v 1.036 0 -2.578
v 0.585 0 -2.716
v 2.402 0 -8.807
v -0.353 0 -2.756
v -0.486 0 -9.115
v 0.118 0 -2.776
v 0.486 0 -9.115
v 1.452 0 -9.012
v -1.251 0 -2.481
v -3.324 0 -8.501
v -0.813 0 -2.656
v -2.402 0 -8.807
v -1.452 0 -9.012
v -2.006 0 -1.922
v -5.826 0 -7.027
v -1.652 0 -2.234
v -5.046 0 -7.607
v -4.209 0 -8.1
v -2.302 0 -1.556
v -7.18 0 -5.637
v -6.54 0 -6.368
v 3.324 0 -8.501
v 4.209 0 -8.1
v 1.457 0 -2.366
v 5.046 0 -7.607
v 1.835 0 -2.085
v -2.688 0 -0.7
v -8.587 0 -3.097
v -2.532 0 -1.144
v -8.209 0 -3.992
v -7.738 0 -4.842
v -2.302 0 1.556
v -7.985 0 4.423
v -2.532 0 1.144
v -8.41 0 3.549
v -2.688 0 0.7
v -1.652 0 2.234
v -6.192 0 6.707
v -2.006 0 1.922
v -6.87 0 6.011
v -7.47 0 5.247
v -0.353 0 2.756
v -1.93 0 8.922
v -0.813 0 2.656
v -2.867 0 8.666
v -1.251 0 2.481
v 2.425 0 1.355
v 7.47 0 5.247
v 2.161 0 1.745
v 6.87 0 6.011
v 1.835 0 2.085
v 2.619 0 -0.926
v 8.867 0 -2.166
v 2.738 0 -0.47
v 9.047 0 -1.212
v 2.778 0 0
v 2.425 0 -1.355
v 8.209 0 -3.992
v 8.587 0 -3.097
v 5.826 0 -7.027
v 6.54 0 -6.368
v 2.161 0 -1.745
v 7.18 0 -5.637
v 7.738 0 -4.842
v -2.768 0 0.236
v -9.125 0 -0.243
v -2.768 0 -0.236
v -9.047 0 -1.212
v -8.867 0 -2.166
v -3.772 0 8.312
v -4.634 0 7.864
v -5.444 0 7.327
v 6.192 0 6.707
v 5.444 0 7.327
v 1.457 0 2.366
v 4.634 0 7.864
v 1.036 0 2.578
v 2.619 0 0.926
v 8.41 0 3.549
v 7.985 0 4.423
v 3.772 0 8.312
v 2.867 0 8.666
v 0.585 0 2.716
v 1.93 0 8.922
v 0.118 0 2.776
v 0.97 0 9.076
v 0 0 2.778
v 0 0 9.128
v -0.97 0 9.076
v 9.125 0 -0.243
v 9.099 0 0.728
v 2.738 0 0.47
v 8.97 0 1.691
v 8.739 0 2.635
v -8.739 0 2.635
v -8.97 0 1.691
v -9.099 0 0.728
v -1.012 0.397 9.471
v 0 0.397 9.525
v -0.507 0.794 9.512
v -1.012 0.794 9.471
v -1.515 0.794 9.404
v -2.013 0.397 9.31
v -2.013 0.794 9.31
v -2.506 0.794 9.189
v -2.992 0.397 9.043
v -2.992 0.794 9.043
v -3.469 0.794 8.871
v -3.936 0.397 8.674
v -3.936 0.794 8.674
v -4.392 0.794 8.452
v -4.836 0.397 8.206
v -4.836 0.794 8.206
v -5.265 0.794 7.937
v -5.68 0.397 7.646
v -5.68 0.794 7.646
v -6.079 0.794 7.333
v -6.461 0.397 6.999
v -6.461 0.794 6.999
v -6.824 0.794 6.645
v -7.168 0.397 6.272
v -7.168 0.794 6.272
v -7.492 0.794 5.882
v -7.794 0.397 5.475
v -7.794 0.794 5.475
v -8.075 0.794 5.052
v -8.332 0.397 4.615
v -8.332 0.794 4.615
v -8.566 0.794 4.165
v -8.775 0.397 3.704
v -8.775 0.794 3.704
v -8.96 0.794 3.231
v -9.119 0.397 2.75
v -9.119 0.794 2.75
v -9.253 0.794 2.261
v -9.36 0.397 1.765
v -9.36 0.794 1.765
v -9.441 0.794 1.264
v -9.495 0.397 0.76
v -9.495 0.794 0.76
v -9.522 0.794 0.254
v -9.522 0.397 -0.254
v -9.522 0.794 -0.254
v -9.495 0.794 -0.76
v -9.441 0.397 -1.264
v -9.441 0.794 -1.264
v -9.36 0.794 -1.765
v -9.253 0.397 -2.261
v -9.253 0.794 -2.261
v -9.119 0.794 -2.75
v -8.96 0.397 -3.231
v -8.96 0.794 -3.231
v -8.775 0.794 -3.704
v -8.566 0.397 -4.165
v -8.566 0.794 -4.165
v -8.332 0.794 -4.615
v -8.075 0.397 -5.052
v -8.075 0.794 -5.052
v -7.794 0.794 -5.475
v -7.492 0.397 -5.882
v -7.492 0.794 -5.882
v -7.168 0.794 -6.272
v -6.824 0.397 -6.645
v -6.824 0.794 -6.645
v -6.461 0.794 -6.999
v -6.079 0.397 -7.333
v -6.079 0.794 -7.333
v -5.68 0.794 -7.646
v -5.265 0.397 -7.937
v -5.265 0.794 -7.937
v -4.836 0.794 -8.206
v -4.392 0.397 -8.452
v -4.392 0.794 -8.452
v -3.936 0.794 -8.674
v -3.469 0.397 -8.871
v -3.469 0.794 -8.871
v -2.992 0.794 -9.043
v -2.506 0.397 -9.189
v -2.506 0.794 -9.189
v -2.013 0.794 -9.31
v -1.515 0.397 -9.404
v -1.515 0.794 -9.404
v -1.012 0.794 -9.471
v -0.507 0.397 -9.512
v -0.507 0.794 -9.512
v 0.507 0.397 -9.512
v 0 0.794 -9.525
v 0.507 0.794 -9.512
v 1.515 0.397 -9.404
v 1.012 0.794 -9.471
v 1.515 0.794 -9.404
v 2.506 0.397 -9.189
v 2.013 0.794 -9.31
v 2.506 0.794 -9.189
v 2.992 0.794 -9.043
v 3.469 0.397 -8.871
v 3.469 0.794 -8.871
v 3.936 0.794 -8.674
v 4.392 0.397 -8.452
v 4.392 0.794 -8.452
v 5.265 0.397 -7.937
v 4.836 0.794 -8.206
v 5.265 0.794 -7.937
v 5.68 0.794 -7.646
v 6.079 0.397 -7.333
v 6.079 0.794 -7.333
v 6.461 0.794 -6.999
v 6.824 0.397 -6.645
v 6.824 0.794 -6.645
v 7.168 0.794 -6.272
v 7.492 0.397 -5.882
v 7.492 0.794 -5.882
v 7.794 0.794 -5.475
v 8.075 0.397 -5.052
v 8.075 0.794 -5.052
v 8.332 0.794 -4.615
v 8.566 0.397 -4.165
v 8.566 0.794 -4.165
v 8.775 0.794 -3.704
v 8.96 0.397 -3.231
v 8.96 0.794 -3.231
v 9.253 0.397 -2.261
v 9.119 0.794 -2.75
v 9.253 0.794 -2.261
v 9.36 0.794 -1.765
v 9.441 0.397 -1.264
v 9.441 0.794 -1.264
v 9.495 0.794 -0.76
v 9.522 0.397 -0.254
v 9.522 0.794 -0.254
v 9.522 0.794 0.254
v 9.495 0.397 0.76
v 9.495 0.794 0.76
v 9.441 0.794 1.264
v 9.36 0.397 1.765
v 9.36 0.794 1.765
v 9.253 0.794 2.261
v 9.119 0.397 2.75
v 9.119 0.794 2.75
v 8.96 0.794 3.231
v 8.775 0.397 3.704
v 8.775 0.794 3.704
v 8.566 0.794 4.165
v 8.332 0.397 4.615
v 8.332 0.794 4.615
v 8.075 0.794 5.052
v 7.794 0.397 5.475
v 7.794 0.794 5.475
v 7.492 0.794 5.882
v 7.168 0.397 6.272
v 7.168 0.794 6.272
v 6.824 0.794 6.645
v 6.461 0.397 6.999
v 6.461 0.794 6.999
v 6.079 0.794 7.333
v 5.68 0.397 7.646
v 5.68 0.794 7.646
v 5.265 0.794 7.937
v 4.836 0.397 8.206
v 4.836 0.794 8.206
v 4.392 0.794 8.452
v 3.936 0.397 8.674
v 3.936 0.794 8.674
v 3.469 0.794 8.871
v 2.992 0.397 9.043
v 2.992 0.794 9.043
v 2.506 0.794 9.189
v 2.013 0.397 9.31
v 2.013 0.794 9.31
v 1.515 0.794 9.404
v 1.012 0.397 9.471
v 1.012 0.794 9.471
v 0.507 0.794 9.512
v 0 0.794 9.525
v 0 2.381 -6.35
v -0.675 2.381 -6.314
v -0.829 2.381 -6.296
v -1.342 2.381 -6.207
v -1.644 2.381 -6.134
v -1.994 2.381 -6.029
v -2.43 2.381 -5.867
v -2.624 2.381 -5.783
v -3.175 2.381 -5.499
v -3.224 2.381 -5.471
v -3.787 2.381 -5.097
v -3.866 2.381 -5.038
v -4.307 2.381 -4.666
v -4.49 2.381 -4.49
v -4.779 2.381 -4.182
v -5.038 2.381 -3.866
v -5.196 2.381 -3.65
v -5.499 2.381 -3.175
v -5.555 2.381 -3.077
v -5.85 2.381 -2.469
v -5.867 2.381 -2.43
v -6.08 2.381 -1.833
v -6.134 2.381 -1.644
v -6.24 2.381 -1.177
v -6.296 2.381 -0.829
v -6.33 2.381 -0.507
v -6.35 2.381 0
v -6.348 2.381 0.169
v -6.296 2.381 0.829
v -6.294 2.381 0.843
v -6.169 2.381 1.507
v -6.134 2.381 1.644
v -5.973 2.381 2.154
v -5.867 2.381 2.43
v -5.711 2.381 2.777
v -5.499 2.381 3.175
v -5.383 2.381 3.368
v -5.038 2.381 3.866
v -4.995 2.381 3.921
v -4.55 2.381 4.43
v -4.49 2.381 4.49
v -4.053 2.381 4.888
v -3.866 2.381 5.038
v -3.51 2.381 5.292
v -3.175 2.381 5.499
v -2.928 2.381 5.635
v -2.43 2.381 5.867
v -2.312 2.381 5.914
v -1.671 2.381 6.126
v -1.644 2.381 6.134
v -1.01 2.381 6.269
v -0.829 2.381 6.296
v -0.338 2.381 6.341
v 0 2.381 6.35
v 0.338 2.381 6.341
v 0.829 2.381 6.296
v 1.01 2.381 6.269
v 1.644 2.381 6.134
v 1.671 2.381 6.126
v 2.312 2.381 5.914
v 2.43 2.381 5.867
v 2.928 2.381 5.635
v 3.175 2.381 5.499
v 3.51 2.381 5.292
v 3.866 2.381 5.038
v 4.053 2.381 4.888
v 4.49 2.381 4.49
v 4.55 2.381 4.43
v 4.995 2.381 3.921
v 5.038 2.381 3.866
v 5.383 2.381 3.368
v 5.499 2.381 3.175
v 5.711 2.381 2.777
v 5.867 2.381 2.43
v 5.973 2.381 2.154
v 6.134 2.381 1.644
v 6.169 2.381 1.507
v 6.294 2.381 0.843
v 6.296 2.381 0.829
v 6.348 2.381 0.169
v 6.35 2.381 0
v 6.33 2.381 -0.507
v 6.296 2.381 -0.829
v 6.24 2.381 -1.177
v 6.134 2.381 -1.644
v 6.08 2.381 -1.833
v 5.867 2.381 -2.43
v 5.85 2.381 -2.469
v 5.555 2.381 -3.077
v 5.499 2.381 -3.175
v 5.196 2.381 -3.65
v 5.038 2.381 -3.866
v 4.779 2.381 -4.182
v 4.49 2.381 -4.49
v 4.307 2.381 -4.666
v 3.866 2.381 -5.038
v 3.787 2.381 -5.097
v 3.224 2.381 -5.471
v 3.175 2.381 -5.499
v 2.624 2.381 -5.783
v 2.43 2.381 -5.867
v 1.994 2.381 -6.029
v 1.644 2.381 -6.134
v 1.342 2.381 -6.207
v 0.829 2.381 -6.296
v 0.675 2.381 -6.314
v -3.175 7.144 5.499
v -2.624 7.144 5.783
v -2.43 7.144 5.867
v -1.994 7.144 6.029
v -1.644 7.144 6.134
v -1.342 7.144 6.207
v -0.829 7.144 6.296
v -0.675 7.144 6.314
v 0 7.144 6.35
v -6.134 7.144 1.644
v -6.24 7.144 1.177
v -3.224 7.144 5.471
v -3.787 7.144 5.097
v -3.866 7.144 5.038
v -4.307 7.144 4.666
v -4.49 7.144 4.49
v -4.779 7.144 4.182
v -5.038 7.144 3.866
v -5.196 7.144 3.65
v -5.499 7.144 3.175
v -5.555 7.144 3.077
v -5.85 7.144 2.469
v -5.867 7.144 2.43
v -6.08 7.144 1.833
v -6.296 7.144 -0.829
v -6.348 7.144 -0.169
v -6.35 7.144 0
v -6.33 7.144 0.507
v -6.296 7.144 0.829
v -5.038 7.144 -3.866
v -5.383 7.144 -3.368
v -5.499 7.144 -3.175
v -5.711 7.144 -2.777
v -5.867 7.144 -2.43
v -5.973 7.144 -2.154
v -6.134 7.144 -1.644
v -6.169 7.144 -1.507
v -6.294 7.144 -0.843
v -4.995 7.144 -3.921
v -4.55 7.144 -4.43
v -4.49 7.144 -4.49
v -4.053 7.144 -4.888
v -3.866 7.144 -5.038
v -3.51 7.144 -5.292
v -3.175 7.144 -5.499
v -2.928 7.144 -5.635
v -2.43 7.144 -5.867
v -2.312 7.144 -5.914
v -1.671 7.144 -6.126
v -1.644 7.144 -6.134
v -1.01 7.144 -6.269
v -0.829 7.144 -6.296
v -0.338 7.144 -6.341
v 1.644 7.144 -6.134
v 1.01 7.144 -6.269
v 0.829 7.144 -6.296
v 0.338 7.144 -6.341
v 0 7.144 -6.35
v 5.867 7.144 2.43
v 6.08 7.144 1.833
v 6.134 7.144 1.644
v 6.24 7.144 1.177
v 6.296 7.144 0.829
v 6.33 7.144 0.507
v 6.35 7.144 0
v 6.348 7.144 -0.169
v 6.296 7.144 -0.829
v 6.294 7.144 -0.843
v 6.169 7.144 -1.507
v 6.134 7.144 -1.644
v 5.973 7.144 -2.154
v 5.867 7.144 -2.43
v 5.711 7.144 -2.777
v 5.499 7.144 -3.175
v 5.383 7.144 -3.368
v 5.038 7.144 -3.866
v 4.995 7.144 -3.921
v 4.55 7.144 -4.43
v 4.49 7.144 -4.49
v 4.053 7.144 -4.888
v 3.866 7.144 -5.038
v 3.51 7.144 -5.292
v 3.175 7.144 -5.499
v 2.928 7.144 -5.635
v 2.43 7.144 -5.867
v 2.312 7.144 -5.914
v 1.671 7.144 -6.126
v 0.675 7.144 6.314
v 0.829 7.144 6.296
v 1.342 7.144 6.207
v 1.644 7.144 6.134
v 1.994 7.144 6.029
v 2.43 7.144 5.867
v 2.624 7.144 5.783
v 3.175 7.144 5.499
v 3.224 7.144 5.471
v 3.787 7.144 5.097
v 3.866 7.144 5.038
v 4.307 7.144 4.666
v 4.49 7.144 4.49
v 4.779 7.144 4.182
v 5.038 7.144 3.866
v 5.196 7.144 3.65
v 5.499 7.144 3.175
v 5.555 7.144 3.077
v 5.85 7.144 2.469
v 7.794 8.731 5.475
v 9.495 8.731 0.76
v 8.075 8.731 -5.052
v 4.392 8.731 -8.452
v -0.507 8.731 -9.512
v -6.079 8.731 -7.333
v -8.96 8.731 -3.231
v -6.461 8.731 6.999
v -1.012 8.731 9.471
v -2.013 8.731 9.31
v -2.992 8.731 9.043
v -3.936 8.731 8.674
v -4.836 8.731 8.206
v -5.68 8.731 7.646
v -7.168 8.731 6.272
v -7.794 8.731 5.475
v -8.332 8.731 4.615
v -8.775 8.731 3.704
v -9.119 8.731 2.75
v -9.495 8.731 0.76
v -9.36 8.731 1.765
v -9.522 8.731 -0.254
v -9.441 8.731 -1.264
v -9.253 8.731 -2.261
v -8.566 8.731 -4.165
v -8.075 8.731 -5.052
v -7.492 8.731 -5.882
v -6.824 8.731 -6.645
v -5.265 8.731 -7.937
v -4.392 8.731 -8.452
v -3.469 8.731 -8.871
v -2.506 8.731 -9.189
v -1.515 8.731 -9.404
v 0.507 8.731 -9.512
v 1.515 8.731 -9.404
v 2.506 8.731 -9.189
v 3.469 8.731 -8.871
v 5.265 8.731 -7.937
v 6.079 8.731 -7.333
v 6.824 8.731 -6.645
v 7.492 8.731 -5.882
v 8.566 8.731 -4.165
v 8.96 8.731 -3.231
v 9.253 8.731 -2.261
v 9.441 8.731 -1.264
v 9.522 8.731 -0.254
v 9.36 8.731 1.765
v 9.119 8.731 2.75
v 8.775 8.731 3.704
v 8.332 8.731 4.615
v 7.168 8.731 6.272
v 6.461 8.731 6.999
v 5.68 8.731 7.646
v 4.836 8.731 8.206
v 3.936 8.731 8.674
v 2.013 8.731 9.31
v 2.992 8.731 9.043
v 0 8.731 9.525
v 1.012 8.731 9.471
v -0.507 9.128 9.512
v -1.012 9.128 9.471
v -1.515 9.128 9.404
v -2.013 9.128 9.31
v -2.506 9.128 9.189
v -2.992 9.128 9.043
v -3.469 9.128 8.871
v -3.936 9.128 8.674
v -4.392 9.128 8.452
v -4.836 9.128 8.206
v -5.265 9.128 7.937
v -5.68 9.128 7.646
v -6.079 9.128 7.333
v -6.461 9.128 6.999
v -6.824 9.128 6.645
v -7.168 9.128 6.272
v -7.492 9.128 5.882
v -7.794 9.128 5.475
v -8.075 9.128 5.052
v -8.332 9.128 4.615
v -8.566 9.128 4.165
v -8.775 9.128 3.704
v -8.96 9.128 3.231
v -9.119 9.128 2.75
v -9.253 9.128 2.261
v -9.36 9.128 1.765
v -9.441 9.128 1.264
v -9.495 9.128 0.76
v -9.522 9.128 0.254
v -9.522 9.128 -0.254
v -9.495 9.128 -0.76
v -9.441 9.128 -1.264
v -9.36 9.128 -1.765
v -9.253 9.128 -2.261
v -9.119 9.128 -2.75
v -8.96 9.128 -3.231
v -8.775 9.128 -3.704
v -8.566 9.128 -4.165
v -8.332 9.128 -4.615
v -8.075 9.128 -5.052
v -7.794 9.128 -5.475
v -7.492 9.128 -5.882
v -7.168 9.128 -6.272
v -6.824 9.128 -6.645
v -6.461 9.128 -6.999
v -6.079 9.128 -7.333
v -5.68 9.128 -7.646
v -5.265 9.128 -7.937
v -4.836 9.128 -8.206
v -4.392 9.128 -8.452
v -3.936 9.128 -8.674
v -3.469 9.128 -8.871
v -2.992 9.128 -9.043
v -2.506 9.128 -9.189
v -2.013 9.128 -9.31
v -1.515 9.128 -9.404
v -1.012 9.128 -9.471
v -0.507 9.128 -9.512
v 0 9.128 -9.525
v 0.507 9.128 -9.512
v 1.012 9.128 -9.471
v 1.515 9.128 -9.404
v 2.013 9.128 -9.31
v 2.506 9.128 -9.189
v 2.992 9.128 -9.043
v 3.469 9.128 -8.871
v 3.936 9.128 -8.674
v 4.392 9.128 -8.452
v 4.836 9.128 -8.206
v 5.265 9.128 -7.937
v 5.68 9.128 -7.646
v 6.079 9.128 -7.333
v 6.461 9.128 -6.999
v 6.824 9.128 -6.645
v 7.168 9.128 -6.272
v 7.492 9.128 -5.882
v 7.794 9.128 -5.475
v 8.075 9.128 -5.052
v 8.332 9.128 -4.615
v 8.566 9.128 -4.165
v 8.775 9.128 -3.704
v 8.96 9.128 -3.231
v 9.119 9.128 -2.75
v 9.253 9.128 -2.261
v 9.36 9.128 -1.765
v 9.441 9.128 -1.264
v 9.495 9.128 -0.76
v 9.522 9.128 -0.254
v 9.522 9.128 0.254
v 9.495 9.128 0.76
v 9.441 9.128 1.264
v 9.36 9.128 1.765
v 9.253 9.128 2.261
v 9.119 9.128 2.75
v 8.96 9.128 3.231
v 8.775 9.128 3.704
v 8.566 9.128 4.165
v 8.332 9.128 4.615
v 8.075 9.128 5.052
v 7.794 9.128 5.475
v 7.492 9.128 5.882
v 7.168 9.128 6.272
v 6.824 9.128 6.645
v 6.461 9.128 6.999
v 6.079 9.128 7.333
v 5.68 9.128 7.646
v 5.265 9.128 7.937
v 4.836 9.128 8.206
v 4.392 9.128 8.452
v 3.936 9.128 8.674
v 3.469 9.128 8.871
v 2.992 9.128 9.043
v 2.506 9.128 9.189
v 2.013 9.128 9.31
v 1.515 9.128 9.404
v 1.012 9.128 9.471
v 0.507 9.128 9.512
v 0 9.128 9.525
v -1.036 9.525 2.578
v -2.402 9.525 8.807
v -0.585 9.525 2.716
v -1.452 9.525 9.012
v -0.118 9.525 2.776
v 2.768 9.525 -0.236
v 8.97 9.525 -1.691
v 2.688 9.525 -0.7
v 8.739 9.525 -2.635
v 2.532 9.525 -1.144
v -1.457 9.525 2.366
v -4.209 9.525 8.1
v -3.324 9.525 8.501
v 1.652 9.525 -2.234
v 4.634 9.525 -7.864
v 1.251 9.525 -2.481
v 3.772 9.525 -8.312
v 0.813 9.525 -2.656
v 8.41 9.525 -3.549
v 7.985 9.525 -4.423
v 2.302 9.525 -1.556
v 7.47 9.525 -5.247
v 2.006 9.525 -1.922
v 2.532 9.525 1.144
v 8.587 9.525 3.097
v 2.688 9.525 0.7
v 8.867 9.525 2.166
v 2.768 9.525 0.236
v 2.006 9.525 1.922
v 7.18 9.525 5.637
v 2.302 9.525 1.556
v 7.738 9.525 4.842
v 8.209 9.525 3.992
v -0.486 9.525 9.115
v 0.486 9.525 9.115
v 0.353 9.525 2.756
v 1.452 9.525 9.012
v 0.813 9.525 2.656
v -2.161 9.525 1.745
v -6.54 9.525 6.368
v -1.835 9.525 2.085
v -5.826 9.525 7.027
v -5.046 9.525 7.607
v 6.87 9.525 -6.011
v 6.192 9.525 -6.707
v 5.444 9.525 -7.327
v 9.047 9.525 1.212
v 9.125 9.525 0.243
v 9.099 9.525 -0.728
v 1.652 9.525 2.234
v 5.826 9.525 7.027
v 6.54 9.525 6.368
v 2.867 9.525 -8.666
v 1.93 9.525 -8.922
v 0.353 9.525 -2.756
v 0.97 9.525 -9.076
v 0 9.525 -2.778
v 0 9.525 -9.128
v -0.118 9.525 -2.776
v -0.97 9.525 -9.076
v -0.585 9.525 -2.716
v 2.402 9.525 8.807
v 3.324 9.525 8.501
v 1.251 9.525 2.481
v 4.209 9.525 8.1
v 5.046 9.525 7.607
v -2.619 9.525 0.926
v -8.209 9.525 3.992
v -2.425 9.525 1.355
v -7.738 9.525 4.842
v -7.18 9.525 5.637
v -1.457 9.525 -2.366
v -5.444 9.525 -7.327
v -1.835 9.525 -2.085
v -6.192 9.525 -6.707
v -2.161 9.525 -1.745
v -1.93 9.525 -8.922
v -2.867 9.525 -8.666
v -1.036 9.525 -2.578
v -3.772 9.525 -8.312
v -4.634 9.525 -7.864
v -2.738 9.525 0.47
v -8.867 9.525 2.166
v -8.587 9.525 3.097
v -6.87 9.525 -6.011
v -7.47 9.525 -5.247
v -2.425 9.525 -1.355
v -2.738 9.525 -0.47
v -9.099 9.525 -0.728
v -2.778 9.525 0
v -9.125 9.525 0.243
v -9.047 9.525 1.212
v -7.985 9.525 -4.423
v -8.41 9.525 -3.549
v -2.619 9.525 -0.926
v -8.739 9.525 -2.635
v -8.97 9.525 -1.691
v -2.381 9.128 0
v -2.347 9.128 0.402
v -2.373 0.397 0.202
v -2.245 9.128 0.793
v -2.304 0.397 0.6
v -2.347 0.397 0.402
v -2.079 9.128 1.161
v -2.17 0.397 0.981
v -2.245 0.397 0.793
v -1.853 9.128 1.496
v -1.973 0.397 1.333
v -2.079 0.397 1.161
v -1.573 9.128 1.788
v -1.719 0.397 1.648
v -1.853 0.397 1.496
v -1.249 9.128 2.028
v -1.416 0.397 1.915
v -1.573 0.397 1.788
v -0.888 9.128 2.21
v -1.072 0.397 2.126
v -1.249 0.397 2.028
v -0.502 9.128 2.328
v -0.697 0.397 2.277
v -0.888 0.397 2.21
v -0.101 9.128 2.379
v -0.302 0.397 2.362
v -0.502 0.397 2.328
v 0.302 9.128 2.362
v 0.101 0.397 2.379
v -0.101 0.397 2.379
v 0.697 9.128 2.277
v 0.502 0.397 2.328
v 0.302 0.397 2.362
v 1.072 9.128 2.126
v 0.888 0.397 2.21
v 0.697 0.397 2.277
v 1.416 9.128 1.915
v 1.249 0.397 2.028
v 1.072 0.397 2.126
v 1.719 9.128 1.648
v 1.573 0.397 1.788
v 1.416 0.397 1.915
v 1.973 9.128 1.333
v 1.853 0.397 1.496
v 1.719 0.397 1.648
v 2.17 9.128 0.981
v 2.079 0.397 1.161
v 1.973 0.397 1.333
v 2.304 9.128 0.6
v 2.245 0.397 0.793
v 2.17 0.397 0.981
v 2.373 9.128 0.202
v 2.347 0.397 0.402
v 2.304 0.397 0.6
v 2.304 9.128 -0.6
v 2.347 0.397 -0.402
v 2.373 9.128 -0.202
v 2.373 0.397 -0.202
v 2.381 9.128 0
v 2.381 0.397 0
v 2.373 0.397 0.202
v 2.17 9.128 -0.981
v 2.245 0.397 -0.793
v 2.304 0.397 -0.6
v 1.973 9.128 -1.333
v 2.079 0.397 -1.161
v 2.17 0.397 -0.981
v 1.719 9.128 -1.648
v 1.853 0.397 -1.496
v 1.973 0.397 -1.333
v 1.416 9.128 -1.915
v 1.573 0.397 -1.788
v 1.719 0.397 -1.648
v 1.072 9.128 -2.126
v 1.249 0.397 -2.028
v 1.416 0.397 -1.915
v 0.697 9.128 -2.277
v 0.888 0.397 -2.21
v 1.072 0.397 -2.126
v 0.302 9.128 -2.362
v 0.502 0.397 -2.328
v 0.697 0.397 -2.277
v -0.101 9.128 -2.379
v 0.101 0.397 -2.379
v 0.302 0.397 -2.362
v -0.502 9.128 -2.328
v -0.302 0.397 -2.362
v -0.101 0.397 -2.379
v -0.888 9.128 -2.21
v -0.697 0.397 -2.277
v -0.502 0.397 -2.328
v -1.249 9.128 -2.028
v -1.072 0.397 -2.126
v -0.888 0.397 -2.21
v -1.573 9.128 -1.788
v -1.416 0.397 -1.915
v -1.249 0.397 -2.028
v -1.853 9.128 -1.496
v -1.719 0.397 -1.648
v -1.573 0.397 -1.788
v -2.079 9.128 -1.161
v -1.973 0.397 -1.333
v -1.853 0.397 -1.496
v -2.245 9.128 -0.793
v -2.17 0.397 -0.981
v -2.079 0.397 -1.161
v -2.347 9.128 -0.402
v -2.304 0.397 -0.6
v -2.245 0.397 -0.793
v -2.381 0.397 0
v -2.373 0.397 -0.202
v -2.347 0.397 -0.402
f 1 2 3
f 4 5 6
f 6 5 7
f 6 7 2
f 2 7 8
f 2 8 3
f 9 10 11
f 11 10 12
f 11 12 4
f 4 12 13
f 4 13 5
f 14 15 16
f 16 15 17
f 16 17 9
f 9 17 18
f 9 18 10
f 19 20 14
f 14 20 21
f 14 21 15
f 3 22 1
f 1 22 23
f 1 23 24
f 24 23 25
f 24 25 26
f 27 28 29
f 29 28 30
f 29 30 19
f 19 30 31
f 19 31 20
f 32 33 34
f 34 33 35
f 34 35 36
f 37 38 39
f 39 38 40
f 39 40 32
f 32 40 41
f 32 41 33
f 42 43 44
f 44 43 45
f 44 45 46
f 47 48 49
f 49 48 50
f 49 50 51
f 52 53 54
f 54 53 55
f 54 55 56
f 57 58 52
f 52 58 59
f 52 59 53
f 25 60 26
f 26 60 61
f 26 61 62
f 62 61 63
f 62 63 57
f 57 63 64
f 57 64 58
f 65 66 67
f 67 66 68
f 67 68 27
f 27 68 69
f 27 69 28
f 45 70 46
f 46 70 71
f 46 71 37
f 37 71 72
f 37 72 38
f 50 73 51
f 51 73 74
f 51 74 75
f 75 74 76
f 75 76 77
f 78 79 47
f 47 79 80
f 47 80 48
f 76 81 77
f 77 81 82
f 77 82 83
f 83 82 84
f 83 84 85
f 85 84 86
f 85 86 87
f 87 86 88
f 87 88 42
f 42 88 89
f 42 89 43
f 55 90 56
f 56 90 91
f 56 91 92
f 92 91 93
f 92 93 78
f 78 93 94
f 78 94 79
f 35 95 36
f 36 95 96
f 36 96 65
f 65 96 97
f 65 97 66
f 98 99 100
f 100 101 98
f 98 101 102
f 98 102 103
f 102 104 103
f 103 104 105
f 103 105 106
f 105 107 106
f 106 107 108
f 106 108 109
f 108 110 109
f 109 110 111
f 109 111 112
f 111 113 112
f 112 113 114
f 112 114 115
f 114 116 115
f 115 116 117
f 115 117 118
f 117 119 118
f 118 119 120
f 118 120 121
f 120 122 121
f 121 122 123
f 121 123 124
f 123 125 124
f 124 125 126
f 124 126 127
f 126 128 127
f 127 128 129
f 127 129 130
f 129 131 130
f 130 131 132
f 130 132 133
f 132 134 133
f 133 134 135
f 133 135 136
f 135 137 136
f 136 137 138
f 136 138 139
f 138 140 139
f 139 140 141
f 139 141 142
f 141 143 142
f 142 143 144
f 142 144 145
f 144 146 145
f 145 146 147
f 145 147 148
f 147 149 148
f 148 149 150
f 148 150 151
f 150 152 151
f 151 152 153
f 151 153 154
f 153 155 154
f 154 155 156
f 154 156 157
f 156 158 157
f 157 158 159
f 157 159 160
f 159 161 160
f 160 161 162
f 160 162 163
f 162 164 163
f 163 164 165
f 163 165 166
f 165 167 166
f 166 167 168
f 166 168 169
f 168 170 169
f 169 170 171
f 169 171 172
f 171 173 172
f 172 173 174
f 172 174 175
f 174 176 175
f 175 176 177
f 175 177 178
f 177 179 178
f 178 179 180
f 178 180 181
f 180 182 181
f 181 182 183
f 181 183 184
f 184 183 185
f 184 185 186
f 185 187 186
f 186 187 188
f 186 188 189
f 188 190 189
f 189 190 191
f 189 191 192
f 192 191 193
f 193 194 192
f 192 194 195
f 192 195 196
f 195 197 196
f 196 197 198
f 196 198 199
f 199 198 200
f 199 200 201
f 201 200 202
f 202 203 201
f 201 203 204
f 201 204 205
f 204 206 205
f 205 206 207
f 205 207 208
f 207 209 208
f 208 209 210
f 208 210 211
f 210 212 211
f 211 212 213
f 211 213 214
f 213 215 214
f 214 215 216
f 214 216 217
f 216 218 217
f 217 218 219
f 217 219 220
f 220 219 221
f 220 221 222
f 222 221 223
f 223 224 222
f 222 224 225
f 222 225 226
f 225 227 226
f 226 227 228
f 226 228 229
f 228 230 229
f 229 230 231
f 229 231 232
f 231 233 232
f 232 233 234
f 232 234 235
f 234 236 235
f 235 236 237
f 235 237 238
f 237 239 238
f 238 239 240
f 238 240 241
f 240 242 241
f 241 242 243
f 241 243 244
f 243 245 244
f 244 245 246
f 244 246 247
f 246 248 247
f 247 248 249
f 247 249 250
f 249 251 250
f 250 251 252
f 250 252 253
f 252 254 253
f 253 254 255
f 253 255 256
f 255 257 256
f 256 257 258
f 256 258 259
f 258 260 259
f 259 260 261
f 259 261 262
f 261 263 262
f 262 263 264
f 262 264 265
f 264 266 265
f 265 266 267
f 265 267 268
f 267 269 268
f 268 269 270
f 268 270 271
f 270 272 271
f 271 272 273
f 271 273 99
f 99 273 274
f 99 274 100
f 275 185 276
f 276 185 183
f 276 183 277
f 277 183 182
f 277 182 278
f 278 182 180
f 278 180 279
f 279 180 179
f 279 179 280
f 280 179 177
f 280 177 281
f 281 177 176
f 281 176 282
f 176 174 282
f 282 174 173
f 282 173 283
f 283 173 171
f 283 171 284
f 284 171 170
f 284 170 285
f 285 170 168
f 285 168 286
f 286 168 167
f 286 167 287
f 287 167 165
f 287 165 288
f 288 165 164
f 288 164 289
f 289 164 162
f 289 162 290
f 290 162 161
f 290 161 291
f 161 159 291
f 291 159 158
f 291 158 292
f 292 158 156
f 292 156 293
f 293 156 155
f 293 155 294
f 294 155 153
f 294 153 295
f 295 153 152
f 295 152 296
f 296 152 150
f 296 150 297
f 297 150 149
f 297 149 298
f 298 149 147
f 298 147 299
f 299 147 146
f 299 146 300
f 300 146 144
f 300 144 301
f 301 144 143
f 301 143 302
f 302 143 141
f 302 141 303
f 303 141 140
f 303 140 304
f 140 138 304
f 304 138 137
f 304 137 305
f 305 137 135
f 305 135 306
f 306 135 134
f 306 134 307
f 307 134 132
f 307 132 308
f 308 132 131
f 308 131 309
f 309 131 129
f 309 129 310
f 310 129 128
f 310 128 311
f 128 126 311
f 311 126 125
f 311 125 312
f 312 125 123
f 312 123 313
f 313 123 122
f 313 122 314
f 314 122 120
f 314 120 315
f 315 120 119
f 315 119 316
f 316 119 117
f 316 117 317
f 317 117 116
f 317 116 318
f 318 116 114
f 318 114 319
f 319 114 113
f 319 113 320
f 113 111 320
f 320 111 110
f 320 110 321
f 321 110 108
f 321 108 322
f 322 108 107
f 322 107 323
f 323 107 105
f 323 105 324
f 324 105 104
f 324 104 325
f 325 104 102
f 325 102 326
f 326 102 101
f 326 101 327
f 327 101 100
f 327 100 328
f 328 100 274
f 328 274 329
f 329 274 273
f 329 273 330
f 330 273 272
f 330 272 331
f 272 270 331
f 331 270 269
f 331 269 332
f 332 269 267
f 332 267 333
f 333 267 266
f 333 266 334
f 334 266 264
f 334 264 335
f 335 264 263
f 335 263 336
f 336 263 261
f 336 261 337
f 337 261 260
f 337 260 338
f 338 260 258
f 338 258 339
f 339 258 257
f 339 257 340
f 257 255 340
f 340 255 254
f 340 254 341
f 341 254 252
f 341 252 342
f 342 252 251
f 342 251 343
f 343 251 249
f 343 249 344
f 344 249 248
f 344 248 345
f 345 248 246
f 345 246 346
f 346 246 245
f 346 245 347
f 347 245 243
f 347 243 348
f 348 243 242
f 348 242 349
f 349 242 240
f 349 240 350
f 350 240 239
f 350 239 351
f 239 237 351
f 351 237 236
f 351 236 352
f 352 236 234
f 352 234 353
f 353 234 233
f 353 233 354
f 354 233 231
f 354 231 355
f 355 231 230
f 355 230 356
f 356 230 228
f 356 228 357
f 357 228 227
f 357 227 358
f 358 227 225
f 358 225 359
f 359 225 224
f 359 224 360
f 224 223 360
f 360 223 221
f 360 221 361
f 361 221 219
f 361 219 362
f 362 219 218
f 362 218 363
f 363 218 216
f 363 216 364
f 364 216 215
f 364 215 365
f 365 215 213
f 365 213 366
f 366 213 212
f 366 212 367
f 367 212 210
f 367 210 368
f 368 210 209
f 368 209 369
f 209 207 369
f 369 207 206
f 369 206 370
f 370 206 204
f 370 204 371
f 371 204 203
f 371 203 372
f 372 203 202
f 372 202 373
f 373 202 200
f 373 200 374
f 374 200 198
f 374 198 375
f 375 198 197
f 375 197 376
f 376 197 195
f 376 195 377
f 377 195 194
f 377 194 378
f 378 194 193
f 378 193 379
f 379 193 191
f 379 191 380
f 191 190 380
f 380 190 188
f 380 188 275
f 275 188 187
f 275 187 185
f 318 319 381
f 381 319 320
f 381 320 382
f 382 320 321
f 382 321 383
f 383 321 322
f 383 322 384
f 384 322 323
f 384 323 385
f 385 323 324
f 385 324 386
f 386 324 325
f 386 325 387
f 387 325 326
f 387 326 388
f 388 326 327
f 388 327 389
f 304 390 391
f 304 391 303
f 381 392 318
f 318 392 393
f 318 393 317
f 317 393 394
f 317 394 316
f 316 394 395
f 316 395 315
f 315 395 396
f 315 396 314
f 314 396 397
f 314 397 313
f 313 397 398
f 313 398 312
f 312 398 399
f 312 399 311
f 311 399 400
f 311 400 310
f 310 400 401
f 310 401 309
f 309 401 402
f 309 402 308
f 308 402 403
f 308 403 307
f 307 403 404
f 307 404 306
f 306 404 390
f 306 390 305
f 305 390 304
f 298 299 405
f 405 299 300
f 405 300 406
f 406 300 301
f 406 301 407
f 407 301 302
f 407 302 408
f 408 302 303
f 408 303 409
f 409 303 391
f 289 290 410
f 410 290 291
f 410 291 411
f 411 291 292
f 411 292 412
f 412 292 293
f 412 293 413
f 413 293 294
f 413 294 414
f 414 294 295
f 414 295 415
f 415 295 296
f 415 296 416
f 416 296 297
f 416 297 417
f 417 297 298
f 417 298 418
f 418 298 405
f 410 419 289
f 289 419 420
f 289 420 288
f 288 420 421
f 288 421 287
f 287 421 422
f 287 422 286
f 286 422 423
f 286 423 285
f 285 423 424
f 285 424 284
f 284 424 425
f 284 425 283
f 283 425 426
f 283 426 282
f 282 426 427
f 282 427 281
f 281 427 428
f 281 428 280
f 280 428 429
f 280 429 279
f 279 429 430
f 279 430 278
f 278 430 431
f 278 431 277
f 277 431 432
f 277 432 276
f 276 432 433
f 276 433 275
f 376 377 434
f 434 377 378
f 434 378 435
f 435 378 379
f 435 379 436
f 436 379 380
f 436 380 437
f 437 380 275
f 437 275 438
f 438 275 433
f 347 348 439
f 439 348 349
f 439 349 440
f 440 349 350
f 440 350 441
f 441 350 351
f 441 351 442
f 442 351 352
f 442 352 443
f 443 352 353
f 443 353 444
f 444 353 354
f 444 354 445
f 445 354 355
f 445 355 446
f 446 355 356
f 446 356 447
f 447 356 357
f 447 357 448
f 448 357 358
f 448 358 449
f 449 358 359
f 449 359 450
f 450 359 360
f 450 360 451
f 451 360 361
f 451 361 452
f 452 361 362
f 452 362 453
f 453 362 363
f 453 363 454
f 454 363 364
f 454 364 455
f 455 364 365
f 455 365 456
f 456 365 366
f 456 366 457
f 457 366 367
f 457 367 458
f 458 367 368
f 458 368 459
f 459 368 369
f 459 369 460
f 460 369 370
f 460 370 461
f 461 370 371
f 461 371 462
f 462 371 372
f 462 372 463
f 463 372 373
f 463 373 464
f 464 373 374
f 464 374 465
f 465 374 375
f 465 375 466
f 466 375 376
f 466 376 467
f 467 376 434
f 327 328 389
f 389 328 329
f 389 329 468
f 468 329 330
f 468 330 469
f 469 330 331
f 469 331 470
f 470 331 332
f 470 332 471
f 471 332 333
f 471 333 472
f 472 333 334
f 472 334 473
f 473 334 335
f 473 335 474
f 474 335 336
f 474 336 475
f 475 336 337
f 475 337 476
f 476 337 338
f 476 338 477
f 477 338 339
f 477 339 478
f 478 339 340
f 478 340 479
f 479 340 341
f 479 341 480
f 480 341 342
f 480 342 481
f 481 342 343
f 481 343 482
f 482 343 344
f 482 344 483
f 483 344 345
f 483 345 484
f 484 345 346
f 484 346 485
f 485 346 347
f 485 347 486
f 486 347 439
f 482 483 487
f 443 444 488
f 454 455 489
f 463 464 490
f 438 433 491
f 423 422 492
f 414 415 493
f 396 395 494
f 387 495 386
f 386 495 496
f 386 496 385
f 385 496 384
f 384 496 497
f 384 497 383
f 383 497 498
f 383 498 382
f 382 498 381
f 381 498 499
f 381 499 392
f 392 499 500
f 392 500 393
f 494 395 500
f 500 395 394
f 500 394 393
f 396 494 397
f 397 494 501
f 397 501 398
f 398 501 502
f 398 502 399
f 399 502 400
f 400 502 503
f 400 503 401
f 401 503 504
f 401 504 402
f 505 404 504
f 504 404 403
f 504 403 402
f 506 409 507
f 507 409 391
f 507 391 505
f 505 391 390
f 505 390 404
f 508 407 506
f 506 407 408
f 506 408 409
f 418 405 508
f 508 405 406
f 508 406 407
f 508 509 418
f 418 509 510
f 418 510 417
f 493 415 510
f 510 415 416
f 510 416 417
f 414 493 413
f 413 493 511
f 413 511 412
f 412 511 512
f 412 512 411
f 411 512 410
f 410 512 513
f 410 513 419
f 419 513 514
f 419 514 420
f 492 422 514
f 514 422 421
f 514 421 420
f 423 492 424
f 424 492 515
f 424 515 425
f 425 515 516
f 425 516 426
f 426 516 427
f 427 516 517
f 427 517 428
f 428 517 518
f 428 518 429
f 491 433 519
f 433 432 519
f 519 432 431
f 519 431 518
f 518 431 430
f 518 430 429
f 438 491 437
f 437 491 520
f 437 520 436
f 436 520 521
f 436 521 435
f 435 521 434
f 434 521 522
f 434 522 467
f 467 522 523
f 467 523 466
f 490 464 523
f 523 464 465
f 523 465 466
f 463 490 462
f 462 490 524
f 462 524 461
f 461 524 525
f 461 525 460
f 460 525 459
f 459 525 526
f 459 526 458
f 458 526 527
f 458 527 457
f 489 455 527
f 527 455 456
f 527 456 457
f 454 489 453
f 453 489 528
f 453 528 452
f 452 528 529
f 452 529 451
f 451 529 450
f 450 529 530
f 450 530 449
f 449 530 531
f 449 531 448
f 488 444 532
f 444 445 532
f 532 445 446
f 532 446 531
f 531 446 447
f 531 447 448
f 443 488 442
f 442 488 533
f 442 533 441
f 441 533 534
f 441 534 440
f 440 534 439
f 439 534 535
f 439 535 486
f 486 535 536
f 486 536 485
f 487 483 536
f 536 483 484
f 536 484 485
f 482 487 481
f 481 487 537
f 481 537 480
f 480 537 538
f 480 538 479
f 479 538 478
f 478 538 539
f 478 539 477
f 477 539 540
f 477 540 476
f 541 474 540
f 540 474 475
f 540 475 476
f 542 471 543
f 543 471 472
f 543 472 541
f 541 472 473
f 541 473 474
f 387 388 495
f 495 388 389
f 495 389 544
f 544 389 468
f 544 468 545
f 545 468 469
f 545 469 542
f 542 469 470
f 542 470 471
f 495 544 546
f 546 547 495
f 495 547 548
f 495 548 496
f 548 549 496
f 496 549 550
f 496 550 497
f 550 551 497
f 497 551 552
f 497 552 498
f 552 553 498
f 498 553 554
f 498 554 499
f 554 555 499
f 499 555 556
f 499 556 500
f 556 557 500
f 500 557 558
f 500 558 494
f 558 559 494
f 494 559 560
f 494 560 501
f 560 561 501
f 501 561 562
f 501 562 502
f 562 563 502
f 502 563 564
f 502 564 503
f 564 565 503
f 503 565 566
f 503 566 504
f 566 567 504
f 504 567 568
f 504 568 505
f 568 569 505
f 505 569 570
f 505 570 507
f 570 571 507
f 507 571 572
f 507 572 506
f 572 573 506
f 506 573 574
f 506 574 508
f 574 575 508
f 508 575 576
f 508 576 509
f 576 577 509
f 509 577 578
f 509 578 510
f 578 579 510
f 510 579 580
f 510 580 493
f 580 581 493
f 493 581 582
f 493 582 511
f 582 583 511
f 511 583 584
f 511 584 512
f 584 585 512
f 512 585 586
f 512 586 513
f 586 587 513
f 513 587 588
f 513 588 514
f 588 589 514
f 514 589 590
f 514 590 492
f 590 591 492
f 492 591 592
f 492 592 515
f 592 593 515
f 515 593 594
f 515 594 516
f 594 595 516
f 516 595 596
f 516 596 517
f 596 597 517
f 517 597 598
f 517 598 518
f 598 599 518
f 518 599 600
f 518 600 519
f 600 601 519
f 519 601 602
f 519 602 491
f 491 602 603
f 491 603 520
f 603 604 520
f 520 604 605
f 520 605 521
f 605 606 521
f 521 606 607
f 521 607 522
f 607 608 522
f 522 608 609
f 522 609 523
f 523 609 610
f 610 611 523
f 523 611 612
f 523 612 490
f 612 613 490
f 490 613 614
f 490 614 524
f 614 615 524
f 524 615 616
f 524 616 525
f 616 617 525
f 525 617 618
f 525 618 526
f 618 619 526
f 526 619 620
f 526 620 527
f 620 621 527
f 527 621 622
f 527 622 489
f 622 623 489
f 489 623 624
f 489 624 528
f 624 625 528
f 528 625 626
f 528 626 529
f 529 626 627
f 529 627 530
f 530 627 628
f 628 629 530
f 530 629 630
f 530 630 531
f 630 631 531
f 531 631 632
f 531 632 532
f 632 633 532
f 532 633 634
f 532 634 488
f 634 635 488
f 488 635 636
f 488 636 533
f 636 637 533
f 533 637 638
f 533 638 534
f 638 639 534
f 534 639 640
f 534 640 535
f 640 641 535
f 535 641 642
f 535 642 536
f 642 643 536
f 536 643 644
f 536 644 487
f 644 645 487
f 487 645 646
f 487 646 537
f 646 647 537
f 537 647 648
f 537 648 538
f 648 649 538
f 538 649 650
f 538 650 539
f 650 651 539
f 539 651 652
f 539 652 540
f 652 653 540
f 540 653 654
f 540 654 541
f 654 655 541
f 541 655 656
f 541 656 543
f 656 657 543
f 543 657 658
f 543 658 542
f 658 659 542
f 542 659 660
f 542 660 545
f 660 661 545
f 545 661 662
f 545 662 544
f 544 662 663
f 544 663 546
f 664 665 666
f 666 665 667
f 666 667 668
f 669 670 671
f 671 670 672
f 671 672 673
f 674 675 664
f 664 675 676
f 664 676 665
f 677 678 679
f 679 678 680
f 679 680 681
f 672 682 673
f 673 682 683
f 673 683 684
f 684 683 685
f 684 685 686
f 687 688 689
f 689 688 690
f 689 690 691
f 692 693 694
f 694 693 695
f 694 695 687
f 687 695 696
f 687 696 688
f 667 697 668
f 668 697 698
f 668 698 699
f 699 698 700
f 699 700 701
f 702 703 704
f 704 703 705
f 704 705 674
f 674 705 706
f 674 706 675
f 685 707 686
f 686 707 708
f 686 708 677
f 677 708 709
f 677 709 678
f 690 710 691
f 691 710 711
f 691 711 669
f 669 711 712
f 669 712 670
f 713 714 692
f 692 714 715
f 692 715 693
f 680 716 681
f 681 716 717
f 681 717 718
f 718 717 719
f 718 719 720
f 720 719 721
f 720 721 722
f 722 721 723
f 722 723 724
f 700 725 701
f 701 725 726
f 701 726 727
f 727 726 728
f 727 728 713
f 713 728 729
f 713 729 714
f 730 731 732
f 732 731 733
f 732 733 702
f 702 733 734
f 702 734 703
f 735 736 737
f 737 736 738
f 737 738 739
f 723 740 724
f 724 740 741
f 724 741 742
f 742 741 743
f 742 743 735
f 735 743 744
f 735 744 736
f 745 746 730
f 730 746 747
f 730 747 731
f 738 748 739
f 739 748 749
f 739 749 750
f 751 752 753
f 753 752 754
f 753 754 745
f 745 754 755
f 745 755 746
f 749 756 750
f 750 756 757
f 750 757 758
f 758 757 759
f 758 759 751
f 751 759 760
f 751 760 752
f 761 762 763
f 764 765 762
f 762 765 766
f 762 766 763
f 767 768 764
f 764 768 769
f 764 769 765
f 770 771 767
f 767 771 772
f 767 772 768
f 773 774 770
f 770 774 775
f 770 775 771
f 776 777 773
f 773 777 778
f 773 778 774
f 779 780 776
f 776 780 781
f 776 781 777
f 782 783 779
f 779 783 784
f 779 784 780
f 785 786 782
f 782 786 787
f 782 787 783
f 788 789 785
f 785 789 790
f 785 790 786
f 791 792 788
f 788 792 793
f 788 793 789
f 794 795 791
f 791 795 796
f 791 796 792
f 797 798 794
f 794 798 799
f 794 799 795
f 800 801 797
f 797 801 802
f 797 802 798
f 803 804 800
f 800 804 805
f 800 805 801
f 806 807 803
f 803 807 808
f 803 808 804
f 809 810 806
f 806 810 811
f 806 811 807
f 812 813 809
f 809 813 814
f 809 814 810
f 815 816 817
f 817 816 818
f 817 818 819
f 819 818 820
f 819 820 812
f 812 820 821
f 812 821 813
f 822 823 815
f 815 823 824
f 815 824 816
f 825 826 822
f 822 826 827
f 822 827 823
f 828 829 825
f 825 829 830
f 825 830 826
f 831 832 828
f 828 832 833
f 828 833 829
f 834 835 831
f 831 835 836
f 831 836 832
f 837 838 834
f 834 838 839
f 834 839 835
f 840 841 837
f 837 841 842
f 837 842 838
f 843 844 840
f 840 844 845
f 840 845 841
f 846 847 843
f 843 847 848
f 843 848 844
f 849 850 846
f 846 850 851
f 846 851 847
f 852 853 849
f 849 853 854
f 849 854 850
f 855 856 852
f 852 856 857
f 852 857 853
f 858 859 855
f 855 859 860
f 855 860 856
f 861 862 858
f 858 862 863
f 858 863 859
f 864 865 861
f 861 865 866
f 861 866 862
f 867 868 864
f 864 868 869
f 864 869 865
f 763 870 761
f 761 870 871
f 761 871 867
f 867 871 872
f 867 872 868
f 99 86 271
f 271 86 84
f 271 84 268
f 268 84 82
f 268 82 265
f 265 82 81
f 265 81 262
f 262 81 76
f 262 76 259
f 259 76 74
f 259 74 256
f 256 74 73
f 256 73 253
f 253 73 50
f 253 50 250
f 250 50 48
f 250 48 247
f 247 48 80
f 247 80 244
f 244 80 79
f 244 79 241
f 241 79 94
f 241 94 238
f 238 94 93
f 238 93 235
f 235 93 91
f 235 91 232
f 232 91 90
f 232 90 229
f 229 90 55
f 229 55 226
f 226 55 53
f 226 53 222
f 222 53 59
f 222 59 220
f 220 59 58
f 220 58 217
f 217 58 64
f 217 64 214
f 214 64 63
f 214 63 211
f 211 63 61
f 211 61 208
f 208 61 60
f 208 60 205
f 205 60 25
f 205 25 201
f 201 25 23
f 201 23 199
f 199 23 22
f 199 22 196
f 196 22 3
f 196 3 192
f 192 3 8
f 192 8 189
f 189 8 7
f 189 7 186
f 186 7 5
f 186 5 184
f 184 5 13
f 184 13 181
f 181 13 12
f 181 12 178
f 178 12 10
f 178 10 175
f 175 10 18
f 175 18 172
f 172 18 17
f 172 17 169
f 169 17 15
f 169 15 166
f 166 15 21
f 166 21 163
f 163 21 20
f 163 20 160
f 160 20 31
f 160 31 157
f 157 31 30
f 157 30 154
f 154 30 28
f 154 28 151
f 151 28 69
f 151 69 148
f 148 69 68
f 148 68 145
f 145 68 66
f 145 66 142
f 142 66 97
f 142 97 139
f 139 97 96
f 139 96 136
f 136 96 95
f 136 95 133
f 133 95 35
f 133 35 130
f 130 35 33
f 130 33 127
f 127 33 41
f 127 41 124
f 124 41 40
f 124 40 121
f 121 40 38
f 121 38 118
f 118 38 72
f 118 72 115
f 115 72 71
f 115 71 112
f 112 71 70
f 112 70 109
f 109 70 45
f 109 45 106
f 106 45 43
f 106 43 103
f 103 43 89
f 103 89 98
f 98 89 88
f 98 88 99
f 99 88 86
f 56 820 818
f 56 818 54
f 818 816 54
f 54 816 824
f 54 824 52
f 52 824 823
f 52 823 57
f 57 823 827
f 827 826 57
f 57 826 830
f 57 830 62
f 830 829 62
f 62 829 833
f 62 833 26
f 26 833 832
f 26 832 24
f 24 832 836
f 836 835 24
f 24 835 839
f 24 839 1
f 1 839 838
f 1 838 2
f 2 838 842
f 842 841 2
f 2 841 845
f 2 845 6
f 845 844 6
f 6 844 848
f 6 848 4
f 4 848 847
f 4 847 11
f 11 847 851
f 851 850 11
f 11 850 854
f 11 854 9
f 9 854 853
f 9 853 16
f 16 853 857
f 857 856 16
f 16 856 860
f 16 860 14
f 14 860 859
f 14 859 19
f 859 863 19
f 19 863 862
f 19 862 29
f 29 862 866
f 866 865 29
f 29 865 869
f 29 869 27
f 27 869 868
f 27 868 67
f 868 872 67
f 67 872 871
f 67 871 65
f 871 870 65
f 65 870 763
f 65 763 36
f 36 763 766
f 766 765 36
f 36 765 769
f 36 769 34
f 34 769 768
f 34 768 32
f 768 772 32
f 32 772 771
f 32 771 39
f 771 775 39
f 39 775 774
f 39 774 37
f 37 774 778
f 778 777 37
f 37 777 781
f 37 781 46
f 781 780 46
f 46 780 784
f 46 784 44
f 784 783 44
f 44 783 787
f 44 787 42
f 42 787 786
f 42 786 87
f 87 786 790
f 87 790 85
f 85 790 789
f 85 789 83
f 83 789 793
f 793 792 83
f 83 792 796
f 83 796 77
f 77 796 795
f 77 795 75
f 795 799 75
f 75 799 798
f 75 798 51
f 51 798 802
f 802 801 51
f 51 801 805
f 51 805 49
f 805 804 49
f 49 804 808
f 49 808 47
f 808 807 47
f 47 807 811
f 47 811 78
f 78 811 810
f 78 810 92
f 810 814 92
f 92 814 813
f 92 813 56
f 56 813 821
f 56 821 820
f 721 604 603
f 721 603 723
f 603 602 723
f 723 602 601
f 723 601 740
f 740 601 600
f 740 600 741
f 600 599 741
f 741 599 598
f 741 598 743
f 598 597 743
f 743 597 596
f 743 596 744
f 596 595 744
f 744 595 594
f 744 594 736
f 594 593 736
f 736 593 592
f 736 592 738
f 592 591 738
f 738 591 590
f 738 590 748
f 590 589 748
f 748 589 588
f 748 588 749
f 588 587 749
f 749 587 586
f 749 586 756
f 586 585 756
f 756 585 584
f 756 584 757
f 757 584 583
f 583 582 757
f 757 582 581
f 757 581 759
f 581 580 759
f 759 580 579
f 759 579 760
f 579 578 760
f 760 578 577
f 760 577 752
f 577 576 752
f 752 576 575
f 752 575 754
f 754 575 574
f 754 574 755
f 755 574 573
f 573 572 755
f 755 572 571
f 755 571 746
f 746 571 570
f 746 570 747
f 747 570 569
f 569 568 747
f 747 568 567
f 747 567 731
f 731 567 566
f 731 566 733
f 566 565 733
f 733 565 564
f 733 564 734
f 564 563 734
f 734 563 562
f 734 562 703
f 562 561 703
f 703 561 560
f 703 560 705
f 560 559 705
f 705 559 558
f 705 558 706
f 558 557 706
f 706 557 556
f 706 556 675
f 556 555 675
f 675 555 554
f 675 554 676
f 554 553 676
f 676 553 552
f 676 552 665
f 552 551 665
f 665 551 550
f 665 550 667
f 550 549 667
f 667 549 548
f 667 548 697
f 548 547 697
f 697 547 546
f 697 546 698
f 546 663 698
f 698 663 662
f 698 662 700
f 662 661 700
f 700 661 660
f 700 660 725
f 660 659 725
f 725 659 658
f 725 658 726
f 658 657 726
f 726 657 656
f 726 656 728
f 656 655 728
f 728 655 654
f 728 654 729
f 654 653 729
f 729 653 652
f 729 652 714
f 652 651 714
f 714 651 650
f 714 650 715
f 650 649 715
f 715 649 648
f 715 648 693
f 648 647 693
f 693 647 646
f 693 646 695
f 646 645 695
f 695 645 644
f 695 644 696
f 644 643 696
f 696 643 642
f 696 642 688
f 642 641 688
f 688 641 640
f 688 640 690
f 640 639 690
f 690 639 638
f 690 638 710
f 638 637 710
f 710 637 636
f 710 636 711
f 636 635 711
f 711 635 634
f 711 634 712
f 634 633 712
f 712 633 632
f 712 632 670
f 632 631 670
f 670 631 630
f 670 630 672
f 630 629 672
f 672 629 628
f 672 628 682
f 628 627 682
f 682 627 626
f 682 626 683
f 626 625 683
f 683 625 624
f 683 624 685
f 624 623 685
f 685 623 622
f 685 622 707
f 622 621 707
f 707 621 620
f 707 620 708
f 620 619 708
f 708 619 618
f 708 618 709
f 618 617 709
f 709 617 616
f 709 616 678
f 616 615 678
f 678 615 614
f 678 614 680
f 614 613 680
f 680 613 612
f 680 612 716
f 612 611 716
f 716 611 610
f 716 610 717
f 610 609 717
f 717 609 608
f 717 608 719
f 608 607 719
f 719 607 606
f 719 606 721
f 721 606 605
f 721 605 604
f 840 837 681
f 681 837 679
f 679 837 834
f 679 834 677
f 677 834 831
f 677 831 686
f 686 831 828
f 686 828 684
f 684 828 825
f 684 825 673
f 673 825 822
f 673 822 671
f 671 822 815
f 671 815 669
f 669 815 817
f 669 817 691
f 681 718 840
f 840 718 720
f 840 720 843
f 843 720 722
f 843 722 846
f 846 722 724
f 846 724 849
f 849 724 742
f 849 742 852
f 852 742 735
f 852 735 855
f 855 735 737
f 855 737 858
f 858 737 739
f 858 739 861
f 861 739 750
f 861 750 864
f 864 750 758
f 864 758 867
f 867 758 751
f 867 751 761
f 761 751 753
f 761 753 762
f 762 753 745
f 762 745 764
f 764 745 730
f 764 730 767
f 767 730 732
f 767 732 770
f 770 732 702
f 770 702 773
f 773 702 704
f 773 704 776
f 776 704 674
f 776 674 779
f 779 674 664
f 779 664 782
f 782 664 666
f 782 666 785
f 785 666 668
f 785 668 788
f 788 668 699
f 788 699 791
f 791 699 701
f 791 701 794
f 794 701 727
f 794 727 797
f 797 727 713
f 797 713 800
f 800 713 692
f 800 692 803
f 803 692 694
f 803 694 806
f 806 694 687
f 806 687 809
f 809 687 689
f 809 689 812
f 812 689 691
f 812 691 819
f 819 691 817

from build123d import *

# Parameters (mm, degrees)
SKETCH2_R               = 2.38125
CUT_EXTRUDE1_DEPTH      = 1
CUT_EXTRUDE1_DEPTH_BACK = 10.525
CHAMFER1_SIZE           = 0.396875


with BuildPart() as part:
    # Sketch1 → Revolve1 (revolve)
    with BuildSketch(Plane.XY):
        Polygon((0, 0), (9.525, 0), (9.525, 0.79375), (6.35, 2.38125), (6.35, 7.14375), (9.525, 8.73125), (9.525, 9.525), (0, 9.525), align=None)
    revolve(axis=Axis((0, 9.525, 0), (0, -1, 0)))

    # Sketch2 → Cut-Extrude1 (cut, two sides)
    with BuildSketch(Plane(origin=(0, 9.525, 0), x_dir=(1, 0, 0), z_dir=(0, 1, 0))) as cut_extrude1_sk:
        Circle(SKETCH2_R)
    extrude(amount=CUT_EXTRUDE1_DEPTH, mode=Mode.SUBTRACT)
    extrude(cut_extrude1_sk.sketch, amount=-CUT_EXTRUDE1_DEPTH_BACK, mode=Mode.SUBTRACT)

    # Chamfer1
    chamfer1_edges = [part.edges().sort_by_distance(p)[0] for p in [
        (-2.38125, 0, 0),
        (-2.38125, 9.525, 0),
        (-9.525, 9.525, 0),
        (-9.525, 0, 0),
    ]]
    chamfer(chamfer1_edges, length=CHAMFER1_SIZE)


solid = part.part
